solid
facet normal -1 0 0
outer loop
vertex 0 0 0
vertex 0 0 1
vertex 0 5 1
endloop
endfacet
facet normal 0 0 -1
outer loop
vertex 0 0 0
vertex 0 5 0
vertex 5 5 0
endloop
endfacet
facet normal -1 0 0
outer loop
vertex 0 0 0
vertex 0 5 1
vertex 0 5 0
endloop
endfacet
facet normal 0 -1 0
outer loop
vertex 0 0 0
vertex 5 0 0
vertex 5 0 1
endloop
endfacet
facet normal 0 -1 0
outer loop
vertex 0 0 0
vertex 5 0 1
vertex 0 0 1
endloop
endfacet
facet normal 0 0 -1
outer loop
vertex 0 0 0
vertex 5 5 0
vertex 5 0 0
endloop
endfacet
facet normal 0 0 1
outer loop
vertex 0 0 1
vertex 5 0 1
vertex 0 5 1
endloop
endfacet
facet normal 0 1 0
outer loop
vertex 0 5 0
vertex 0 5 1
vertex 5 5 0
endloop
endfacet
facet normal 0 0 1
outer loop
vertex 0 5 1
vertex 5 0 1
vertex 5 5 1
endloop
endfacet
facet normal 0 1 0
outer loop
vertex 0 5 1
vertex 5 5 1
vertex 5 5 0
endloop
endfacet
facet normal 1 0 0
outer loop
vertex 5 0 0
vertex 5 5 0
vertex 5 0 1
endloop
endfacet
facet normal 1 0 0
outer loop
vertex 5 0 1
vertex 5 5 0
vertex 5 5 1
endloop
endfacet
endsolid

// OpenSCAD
/* Warning, this is a very basic generator with a lot of approximation 
input data : [VQFN, LYX, 5x5x1.0mm, 24, , A, C04-00364A]
generated by com.zoubworld.electronics.cad.model3d.Basic
Date : Sun Feb 15 10:50:48 CET 2026
*/

//body
color("black")
translate([0,0,0])
cube([5.0,5.0,1.0], center=false);
